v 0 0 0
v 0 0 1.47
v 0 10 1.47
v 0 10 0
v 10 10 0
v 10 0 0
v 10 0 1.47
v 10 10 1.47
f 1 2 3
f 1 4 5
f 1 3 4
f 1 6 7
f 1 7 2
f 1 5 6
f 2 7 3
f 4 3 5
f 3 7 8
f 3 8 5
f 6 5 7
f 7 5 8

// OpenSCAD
/* Warning, this is a very basic generator with a lot of approximation 
input data : [LBGA, JHC, 10x10x1.47mm, 81, , B, C04-25340B]
generated by com.zoubworld.electronics.cad.model3d.Basic
Date : Sun Feb 15 10:50:49 CET 2026
*/

//body
color("black")
translate([0,0,0])
cube([10.0,10.0,1.47], center=false);
